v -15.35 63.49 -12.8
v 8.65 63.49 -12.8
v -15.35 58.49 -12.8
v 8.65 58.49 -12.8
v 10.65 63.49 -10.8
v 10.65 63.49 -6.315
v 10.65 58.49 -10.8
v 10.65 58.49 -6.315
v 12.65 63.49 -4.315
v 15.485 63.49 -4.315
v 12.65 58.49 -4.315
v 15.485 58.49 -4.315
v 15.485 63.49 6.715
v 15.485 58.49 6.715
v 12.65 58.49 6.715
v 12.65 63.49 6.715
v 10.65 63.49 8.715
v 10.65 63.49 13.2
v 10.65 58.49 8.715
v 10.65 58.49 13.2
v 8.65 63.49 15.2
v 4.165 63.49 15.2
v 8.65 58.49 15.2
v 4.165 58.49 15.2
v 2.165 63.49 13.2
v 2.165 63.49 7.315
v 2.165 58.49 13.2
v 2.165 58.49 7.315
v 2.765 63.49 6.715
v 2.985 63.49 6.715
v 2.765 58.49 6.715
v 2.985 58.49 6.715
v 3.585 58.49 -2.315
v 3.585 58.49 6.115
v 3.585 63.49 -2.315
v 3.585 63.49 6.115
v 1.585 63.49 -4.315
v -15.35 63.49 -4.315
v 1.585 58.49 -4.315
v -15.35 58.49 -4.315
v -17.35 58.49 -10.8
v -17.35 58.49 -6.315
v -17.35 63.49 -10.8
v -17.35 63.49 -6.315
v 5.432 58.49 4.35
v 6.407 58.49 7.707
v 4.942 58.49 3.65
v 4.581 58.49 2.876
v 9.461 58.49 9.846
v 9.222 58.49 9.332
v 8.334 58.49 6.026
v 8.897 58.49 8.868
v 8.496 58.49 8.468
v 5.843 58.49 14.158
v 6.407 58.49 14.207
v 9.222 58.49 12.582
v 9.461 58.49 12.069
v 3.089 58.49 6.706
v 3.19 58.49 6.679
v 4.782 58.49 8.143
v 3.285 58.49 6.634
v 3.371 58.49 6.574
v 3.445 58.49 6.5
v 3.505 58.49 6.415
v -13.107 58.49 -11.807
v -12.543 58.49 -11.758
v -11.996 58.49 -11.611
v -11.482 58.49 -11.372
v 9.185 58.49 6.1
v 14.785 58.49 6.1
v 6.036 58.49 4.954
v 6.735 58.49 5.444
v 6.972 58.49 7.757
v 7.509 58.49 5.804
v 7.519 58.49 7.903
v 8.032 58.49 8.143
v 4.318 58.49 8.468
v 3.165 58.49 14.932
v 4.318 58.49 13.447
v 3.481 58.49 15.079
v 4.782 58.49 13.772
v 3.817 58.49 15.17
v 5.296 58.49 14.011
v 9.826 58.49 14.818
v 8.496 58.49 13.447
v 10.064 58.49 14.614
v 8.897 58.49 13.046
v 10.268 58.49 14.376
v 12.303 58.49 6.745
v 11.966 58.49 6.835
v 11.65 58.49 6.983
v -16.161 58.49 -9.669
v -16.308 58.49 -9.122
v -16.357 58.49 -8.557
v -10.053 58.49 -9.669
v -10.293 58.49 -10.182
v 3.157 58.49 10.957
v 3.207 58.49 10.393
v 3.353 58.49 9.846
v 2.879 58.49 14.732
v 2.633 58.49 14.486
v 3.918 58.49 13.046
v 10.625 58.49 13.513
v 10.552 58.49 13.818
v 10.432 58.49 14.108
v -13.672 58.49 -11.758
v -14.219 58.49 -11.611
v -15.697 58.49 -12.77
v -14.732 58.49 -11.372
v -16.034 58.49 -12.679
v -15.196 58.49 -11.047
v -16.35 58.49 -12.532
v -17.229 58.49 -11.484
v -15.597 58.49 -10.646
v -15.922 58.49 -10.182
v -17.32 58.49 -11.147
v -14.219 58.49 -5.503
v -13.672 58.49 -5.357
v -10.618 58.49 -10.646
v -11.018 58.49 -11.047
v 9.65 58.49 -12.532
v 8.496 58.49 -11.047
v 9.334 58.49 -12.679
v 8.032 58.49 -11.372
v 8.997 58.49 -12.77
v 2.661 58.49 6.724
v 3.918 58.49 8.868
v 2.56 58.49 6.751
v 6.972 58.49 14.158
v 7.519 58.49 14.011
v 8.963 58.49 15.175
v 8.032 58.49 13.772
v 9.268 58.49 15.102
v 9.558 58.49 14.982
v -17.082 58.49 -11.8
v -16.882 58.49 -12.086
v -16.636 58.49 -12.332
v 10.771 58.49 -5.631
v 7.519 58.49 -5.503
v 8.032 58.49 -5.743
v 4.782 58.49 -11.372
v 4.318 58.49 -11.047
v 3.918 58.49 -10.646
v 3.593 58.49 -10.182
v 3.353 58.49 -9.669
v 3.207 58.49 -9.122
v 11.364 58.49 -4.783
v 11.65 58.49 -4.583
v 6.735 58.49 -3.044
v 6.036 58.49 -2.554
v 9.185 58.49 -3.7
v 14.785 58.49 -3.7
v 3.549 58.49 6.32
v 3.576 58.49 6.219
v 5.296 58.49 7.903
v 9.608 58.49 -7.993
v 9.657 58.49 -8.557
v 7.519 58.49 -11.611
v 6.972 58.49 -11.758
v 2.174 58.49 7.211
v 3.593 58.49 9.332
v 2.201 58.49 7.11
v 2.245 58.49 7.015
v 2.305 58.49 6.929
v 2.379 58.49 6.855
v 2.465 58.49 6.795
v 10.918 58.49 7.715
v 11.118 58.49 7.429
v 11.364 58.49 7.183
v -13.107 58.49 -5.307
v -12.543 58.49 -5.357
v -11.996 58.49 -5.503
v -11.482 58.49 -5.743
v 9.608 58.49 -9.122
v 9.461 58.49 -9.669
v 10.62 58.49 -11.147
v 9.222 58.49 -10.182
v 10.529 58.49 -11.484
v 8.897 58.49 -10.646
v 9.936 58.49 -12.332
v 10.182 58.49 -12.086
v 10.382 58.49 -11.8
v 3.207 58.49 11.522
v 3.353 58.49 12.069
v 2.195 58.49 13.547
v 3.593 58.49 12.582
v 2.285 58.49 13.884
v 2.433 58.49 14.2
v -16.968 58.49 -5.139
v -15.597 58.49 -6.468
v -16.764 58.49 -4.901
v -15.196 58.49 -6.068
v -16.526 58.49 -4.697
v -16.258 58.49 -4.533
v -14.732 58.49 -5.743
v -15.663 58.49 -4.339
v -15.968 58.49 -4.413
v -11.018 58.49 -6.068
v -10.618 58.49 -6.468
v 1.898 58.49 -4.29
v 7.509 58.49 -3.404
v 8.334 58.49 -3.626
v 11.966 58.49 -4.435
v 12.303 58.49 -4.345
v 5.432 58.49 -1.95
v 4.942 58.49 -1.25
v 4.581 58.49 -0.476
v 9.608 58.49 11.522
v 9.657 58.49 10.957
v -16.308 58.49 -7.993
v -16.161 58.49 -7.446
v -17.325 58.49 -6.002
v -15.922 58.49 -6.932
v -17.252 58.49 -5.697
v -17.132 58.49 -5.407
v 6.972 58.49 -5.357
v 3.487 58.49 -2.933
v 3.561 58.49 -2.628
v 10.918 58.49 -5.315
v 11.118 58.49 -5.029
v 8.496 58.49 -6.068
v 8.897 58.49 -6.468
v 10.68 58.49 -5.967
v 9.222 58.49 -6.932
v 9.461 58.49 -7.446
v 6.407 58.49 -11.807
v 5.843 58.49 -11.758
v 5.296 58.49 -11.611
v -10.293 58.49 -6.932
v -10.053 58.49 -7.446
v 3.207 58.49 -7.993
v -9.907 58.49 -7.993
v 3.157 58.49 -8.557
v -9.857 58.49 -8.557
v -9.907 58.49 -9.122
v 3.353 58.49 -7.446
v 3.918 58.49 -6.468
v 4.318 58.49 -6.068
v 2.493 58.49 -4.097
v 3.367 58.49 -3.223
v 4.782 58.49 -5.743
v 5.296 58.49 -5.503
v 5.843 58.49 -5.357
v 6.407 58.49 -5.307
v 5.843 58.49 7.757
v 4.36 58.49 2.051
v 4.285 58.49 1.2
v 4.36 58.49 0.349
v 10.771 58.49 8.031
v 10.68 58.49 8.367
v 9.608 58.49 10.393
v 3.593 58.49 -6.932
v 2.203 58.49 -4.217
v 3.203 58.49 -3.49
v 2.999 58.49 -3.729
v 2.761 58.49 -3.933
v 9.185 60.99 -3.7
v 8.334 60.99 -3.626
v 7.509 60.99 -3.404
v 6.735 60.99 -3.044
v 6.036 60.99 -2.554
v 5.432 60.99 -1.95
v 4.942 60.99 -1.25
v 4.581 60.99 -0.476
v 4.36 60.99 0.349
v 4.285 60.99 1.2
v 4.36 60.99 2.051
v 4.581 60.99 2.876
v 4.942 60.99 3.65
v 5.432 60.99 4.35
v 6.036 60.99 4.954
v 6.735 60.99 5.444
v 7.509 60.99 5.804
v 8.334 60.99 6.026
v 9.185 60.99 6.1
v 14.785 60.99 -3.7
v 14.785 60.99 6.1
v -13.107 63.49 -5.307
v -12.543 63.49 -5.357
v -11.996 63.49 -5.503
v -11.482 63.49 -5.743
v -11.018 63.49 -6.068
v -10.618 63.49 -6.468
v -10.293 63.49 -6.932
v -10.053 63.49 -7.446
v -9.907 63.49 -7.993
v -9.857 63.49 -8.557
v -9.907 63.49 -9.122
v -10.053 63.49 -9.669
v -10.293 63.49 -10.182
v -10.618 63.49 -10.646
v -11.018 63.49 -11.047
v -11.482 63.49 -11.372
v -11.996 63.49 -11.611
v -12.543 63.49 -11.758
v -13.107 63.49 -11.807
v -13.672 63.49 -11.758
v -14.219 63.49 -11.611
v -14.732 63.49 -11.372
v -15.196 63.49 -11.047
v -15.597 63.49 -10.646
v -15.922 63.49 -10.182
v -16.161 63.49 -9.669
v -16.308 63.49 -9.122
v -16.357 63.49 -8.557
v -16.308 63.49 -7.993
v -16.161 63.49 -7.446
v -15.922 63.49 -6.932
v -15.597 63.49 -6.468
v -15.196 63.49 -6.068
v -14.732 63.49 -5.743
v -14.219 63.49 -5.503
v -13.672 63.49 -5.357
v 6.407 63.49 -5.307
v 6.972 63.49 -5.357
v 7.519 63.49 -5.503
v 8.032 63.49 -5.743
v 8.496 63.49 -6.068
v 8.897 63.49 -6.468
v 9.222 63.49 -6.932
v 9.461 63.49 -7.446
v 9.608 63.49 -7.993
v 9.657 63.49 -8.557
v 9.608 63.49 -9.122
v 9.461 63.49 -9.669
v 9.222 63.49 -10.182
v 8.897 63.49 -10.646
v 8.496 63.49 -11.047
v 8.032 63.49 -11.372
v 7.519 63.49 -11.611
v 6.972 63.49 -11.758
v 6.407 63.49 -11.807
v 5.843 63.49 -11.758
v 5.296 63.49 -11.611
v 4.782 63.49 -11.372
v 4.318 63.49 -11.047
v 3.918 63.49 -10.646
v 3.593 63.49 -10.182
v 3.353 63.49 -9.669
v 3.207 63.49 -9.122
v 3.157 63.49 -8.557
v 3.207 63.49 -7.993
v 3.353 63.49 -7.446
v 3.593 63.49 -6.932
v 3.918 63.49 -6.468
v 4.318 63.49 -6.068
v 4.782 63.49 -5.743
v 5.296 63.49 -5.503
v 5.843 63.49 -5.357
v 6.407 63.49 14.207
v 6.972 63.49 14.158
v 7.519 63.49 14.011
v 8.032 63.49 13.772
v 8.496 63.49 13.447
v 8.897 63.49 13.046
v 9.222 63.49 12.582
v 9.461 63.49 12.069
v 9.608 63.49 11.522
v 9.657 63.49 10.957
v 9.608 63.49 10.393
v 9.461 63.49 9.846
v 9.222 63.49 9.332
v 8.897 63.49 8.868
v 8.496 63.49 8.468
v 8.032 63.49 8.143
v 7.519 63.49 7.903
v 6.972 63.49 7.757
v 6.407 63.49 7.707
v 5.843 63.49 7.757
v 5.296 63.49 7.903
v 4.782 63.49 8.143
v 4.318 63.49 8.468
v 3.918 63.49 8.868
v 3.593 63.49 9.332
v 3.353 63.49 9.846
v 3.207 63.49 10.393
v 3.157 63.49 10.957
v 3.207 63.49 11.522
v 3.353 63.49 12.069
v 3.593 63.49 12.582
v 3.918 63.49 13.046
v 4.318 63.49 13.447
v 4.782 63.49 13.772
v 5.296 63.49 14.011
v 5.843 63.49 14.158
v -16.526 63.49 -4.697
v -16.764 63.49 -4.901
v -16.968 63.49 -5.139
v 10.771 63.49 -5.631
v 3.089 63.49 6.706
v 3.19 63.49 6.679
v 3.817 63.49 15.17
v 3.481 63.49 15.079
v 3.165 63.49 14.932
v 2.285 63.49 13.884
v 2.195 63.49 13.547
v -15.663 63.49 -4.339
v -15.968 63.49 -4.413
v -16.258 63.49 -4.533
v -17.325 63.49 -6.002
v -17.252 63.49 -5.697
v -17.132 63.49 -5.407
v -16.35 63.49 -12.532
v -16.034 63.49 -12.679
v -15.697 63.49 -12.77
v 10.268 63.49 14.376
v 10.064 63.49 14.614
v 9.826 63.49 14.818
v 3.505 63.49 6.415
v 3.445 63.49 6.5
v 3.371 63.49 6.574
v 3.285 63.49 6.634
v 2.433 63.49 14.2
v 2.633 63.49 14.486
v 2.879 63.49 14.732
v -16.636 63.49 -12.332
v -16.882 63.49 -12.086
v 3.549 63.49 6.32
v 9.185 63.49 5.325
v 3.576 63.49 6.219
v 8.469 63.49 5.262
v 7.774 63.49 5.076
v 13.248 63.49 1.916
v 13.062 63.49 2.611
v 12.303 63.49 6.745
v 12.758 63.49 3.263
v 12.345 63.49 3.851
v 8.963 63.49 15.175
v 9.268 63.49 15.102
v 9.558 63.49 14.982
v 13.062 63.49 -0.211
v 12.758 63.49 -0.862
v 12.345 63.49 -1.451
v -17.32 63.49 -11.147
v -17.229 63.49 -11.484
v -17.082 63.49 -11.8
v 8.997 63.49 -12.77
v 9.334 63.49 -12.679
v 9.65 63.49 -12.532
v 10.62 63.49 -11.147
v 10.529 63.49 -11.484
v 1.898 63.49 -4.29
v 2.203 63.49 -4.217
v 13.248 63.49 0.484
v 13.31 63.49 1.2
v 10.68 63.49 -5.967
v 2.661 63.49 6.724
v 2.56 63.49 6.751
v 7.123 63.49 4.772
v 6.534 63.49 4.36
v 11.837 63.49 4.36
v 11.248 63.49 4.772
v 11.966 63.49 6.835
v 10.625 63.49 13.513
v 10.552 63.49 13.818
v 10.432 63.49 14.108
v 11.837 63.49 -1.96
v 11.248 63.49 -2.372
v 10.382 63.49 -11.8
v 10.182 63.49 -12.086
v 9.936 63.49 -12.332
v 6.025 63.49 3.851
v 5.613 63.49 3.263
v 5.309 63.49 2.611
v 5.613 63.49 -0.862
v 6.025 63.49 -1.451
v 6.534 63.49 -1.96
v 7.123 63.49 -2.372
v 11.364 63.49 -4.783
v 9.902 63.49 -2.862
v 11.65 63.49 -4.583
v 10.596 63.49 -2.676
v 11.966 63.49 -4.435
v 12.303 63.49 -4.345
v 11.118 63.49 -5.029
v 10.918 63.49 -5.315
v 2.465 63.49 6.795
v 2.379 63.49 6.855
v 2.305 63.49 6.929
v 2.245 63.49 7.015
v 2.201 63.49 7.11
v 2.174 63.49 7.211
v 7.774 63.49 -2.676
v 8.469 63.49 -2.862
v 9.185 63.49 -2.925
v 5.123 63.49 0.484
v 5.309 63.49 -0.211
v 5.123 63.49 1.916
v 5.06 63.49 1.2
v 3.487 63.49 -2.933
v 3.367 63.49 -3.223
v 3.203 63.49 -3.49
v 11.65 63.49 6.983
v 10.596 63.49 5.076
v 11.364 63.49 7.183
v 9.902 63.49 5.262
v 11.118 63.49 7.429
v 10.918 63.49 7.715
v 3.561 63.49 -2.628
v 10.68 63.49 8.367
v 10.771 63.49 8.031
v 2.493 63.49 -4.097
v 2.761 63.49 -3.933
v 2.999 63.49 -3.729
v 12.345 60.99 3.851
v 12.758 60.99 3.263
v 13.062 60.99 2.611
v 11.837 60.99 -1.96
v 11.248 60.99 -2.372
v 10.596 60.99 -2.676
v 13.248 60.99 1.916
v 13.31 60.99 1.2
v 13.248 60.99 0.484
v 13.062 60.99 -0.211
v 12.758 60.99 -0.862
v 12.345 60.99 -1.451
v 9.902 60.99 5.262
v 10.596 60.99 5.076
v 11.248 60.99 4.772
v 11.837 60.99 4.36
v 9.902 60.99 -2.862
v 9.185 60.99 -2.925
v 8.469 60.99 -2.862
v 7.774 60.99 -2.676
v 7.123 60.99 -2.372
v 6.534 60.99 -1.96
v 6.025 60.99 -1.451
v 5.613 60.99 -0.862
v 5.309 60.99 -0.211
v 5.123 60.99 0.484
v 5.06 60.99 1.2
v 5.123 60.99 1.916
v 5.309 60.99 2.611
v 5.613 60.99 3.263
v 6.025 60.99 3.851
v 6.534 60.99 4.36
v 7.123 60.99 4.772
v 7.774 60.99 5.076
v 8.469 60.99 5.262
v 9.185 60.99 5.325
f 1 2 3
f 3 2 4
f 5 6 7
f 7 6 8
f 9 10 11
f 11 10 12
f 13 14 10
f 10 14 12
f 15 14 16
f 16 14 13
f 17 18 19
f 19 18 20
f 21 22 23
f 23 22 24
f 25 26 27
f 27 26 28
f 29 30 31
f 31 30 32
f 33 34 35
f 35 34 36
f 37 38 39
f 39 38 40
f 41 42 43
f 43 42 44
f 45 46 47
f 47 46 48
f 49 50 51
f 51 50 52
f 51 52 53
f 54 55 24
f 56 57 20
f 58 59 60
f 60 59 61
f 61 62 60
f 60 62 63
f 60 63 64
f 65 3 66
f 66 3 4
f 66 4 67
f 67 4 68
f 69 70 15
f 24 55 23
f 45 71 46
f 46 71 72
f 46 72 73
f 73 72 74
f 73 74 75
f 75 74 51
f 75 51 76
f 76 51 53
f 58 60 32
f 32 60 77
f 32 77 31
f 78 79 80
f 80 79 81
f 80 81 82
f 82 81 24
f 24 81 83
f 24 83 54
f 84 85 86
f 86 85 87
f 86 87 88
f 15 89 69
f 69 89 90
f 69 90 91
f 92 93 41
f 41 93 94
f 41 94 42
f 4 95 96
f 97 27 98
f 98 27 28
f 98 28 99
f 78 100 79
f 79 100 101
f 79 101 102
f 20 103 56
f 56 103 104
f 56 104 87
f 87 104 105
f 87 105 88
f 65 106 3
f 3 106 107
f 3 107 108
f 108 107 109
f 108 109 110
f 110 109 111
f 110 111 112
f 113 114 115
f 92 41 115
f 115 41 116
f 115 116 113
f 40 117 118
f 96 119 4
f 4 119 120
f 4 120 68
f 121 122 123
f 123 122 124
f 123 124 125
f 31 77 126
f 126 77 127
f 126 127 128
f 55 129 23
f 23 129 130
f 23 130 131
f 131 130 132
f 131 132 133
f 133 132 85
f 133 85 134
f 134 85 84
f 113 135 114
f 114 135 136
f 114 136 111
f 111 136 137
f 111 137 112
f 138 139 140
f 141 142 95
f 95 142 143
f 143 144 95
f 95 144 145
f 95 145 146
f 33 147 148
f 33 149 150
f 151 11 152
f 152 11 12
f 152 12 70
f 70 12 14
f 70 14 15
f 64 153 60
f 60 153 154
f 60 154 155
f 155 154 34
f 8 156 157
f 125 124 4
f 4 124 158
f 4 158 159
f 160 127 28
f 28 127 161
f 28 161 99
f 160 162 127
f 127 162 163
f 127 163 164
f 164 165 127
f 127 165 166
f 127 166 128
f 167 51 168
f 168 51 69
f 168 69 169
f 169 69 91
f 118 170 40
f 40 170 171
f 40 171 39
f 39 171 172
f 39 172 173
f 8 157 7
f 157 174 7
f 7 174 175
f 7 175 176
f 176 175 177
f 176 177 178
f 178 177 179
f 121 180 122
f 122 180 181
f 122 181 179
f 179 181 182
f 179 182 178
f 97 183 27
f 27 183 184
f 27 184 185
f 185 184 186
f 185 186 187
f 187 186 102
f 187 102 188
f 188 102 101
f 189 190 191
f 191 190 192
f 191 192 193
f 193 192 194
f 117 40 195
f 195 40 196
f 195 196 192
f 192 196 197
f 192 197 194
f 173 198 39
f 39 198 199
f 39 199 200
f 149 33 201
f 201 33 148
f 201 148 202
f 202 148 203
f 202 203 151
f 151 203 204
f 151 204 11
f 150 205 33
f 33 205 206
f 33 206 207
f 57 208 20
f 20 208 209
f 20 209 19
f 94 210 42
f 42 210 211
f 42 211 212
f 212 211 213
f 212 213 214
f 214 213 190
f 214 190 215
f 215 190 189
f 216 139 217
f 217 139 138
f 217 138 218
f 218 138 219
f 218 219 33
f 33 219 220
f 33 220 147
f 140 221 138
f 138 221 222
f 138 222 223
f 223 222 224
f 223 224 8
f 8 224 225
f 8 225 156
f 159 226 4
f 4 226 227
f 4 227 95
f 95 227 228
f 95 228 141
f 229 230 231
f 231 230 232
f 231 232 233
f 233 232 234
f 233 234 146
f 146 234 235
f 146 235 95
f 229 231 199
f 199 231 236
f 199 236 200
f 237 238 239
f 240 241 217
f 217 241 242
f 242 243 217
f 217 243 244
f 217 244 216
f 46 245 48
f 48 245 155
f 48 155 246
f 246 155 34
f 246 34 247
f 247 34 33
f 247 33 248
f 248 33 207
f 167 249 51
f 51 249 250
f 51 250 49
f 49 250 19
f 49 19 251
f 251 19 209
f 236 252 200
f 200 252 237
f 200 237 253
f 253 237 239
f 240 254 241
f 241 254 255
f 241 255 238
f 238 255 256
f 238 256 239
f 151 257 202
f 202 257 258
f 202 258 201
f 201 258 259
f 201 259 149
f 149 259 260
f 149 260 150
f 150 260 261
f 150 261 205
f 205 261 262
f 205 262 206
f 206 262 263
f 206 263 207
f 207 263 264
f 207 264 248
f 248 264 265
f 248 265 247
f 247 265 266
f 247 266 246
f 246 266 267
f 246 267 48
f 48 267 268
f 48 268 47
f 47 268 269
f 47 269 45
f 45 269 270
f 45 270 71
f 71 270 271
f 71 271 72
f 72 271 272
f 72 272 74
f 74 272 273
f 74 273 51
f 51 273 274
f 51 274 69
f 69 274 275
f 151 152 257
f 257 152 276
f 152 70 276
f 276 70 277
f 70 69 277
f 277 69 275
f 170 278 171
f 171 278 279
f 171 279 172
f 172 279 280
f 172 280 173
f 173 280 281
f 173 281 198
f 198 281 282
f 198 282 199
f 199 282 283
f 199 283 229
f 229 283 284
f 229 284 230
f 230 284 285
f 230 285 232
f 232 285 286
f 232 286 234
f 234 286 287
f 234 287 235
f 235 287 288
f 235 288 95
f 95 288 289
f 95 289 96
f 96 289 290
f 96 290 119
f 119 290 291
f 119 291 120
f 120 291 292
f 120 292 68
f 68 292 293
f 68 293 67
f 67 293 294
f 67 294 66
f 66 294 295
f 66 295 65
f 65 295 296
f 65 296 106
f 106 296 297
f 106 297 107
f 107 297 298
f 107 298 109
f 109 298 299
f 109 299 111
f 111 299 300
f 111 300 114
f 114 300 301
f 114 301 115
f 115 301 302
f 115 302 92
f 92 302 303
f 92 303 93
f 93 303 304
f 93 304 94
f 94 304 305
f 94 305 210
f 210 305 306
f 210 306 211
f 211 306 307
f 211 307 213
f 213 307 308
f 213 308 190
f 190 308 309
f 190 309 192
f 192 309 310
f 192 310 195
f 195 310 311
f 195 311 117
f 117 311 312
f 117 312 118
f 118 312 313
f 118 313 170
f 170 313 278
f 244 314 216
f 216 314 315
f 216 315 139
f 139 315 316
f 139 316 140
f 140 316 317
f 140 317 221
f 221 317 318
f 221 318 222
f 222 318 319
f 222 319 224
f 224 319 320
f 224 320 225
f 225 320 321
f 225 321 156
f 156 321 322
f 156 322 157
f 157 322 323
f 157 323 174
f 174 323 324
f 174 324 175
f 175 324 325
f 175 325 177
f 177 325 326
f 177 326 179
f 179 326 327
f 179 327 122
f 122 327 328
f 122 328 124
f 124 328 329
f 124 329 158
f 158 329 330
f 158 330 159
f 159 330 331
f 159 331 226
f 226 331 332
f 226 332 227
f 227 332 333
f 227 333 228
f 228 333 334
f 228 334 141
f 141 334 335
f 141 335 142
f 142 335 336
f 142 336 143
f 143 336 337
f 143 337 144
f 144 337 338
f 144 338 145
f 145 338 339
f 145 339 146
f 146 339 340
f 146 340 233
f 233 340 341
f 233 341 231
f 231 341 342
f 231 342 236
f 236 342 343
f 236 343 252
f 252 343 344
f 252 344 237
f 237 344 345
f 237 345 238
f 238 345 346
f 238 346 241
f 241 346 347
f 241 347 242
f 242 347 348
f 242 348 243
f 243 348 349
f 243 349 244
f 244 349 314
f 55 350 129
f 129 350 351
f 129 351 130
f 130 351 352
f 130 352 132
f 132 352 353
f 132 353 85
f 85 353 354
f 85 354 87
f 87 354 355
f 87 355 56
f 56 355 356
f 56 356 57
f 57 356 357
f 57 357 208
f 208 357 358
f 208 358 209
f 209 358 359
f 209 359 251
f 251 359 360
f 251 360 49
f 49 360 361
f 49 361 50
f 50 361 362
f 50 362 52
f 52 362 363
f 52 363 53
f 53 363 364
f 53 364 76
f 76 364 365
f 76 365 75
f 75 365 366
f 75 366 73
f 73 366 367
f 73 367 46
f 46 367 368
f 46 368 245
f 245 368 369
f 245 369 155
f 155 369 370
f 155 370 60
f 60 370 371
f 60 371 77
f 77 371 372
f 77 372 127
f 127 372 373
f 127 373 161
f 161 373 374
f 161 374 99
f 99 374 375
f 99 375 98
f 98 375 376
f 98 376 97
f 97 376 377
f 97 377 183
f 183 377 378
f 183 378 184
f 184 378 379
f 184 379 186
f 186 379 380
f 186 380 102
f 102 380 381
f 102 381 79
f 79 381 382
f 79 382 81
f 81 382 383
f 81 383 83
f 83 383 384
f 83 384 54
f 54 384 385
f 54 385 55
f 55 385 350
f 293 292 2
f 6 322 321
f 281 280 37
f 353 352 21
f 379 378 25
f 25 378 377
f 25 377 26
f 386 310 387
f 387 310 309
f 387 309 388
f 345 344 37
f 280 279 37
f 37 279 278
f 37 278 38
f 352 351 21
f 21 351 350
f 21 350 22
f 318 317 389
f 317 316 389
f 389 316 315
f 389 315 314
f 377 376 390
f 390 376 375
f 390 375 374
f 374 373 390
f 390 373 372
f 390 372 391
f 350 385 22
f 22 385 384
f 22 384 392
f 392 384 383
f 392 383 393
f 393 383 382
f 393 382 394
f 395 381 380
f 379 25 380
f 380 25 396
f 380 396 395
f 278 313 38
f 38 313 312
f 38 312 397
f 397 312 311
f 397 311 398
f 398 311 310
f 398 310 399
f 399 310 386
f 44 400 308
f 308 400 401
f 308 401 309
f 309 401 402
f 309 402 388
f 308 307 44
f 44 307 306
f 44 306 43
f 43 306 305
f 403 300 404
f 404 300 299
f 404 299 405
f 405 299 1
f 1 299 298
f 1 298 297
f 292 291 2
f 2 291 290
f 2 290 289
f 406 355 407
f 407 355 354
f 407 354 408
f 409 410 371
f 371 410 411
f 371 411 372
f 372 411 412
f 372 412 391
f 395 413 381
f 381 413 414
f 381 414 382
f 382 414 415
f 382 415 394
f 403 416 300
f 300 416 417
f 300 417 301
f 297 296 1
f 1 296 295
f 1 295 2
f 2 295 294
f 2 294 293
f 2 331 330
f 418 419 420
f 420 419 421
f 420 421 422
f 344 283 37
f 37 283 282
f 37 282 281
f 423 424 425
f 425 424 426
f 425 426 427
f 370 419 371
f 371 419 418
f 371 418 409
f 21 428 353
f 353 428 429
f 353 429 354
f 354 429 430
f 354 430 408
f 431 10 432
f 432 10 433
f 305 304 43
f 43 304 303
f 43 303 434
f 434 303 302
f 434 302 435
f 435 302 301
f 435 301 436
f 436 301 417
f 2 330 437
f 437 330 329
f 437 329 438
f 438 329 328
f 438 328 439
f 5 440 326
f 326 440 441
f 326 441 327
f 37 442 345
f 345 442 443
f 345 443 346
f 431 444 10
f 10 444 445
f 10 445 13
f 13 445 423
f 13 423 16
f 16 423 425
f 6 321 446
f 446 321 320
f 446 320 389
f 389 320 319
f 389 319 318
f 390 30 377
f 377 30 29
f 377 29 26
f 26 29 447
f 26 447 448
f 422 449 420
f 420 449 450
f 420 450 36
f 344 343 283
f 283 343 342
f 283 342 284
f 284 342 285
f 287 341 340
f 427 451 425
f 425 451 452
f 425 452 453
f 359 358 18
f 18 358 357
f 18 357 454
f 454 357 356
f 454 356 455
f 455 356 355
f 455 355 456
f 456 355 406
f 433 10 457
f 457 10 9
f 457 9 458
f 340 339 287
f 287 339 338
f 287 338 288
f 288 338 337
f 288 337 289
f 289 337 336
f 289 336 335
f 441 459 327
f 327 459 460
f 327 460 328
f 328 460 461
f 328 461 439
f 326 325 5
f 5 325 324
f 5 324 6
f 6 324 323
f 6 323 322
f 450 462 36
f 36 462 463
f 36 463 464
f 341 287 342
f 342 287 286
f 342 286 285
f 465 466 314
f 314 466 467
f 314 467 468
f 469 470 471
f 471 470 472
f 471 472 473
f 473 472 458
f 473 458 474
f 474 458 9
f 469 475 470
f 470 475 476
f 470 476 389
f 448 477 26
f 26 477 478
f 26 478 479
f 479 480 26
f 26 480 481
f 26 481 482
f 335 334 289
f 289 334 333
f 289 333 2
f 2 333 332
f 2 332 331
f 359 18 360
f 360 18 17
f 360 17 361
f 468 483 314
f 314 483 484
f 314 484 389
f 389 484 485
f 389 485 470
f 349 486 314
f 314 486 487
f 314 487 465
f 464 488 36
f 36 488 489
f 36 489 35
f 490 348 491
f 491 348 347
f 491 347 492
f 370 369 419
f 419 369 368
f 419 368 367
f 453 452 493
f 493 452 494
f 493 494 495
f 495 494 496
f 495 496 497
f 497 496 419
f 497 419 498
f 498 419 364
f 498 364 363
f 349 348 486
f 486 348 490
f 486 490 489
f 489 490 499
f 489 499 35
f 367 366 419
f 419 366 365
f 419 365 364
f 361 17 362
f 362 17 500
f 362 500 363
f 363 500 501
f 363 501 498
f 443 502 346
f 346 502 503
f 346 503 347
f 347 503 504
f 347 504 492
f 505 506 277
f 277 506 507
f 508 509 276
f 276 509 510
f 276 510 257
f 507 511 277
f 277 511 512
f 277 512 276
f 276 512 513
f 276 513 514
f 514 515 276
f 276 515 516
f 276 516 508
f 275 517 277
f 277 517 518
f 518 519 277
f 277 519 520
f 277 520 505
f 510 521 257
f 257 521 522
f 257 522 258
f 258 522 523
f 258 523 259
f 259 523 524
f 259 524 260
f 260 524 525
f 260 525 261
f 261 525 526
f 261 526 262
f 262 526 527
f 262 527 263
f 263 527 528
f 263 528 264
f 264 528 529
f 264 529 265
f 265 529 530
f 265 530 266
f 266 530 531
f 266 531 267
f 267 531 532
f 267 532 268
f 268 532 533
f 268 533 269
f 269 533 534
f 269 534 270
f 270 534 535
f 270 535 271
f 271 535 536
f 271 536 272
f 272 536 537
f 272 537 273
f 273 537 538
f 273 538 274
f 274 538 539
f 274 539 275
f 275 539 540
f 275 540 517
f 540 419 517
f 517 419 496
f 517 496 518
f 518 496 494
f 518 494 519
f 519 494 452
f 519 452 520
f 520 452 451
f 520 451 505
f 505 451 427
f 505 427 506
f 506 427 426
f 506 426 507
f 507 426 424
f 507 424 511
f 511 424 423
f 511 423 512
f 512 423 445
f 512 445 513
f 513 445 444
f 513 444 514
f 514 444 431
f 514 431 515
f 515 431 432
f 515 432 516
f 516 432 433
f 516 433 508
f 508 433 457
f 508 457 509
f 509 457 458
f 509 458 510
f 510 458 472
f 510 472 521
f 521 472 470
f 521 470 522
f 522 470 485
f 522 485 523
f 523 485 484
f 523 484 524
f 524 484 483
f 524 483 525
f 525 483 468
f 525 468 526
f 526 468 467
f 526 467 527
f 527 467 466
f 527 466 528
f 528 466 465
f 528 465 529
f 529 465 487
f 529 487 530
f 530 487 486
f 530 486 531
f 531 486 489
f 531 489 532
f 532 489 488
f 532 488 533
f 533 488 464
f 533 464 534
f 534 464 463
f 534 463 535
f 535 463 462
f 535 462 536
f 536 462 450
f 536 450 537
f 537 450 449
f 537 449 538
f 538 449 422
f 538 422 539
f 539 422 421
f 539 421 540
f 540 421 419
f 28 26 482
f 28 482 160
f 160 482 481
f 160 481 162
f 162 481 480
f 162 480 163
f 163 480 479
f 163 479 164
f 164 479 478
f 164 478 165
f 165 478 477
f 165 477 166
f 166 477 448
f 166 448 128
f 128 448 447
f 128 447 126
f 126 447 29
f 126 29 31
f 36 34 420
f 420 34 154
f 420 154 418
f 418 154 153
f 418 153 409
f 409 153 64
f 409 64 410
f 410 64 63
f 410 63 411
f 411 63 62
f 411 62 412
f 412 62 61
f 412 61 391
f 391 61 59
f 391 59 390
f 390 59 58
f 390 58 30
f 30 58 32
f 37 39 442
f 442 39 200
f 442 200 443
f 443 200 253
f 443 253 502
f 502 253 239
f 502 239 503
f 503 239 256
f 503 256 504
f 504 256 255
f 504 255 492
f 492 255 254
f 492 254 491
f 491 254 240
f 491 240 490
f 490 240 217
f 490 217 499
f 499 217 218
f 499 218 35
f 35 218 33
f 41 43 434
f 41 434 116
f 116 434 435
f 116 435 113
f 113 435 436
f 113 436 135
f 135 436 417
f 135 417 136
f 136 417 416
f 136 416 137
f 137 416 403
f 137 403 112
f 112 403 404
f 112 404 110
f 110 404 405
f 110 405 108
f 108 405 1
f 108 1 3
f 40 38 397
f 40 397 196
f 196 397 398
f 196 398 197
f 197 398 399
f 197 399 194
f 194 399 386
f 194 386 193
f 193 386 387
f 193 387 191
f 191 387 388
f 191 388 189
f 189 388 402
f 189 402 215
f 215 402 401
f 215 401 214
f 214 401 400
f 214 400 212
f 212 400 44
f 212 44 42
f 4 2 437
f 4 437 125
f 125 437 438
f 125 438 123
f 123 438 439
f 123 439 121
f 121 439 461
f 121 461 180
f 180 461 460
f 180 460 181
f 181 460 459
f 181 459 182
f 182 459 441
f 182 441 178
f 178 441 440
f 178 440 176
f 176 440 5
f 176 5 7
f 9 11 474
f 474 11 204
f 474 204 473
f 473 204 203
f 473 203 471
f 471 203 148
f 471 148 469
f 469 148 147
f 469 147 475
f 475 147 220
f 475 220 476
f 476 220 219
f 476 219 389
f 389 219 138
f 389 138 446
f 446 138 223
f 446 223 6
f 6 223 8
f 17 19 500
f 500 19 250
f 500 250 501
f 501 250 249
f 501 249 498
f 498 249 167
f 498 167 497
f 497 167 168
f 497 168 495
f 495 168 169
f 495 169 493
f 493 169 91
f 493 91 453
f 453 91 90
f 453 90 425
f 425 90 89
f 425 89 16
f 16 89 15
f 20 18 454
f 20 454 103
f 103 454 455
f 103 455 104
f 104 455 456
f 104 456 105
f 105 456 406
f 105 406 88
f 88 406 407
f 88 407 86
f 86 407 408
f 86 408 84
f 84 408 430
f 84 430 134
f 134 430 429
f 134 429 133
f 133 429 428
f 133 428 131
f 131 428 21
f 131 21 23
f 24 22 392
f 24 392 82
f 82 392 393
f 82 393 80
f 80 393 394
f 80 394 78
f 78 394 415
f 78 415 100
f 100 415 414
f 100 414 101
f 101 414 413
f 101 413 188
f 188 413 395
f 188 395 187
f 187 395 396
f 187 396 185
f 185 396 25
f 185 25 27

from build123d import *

# Parameters (mm, degrees)
SKETCH1_R           = 3.25
BOSS_EXTRUDE4_DEPTH = 2.5
BOSS_EXTRUDE5_START = 2.5
SKETCH1_3_R         = 3.25
SKETCH1_3_R_2       = 4.025
BOSS_EXTRUDE5_DEPTH = 2.5
SKETCH3_R           = 4.125
CUT_EXTRUDE1_DEPTH  = 24.60217151
FILLET1_R           = 0.6
FILLET2_R           = 2


with BuildPart() as part:
    # Sketch1 → Boss-Extrude4 (new body)
    with BuildSketch(Plane(origin=(0, 60.990384594, 0), x_dir=(1, 0, 0), z_dir=(0, 1, 0))):
        Polygon((3.58528137, 4.314718626), (-17.35, 4.314718626), (-17.35, 12.8), (10.65, 12.8), (10.65, 4.314718626), (15.48528137, 4.314718626), (15.48528137, -6.714718626), (10.65, -6.714718626), (10.65, -15.2), (2.164718626, -15.2), (2.164718626, -6.714718626), (3.58528137, -6.714718626), align=None)
        with Locations((6.407359313, -10.957359313)):
            Circle(SKETCH1_R, mode=Mode.SUBTRACT)
        with Locations((-13.107359313, 8.557359313)):
            Circle(SKETCH1_R, mode=Mode.SUBTRACT)
        with Locations((6.407359313, 8.557359313)):
            Circle(SKETCH1_R, mode=Mode.SUBTRACT)
        with BuildLine():
            Line((14.78528137, 3.7), (9.18528137, 3.7))
            ThreePointArc((9.18528137, 3.7), (4.28528137, -1.2), (9.18528137, -6.1))
            Line((9.18528137, -6.1), (14.78528137, -6.1))
            Line((14.78528137, -6.1), (14.78528137, 3.7))
        make_face(mode=Mode.SUBTRACT)
    extrude(amount=-BOSS_EXTRUDE4_DEPTH)

    # Sketch1<3> → Boss-Extrude5 (add)
    with BuildSketch(Plane(origin=(0, 60.990384594, 0), x_dir=(1, 0, 0), z_dir=(0, 1, 0)).offset(BOSS_EXTRUDE5_START)):
        Polygon((-17.35, 4.314718626), (3.58528137, 4.314718626), (3.58528137, -6.714718626), (2.164718626, -6.714718626), (2.164718626, -15.2), (10.65, -15.2), (10.65, -6.714718626), (15.48528137, -6.714718626), (15.48528137, 4.314718626), (10.65, 4.314718626), (10.65, 12.8), (-17.35, 12.8), align=None)
        with Locations((6.407359313, -10.957359313)):
            Circle(SKETCH1_3_R, mode=Mode.SUBTRACT)
        with Locations((-13.107359313, 8.557359313)):
            Circle(SKETCH1_3_R, mode=Mode.SUBTRACT)
        with Locations((6.407359313, 8.557359313)):
            Circle(SKETCH1_3_R, mode=Mode.SUBTRACT)
        with Locations((9.18528137, -1.2)):
            Circle(SKETCH1_3_R_2, mode=Mode.SUBTRACT)
    extrude(amount=-BOSS_EXTRUDE5_DEPTH)

    # Sketch3 → Cut-Extrude1 (cut, through all)
    with BuildSketch(Plane(origin=(0, 63.490384594, 0), x_dir=(1, 0, 0), z_dir=(0, 1, 0))):
        with Locations((9.18528137, -1.2)):
            Circle(SKETCH3_R)
    extrude(amount=-CUT_EXTRUDE1_DEPTH, mode=Mode.SUBTRACT)

    # Fillet1
    fillet1_edges = [part.edges().sort_by_distance(p)[0] for p in [
        (2.164718626, 60.990384594, 6.714718626),
        (3.58528137, 60.990384594, 6.714718626),
    ]]
    fillet(fillet1_edges, radius=FILLET1_R)

    # Fillet2
    fillet2_edges = [part.edges().sort_by_distance(p)[0] for p in [
        (3.58528137, 60.990384594, -4.314718626),
        (-17.35, 60.990384594, -12.8),
        (-17.35, 60.990384594, -4.314718626),
        (10.65, 60.990384594, -12.8),
        (10.65, 60.990384594, -4.314718626),
        (10.65, 60.990384594, 6.714718626),
        (10.65, 60.990384594, 15.2),
        (2.164718626, 60.990384594, 15.2),
    ]]
    fillet(fillet2_edges, radius=FILLET2_R)


solid = part.part
